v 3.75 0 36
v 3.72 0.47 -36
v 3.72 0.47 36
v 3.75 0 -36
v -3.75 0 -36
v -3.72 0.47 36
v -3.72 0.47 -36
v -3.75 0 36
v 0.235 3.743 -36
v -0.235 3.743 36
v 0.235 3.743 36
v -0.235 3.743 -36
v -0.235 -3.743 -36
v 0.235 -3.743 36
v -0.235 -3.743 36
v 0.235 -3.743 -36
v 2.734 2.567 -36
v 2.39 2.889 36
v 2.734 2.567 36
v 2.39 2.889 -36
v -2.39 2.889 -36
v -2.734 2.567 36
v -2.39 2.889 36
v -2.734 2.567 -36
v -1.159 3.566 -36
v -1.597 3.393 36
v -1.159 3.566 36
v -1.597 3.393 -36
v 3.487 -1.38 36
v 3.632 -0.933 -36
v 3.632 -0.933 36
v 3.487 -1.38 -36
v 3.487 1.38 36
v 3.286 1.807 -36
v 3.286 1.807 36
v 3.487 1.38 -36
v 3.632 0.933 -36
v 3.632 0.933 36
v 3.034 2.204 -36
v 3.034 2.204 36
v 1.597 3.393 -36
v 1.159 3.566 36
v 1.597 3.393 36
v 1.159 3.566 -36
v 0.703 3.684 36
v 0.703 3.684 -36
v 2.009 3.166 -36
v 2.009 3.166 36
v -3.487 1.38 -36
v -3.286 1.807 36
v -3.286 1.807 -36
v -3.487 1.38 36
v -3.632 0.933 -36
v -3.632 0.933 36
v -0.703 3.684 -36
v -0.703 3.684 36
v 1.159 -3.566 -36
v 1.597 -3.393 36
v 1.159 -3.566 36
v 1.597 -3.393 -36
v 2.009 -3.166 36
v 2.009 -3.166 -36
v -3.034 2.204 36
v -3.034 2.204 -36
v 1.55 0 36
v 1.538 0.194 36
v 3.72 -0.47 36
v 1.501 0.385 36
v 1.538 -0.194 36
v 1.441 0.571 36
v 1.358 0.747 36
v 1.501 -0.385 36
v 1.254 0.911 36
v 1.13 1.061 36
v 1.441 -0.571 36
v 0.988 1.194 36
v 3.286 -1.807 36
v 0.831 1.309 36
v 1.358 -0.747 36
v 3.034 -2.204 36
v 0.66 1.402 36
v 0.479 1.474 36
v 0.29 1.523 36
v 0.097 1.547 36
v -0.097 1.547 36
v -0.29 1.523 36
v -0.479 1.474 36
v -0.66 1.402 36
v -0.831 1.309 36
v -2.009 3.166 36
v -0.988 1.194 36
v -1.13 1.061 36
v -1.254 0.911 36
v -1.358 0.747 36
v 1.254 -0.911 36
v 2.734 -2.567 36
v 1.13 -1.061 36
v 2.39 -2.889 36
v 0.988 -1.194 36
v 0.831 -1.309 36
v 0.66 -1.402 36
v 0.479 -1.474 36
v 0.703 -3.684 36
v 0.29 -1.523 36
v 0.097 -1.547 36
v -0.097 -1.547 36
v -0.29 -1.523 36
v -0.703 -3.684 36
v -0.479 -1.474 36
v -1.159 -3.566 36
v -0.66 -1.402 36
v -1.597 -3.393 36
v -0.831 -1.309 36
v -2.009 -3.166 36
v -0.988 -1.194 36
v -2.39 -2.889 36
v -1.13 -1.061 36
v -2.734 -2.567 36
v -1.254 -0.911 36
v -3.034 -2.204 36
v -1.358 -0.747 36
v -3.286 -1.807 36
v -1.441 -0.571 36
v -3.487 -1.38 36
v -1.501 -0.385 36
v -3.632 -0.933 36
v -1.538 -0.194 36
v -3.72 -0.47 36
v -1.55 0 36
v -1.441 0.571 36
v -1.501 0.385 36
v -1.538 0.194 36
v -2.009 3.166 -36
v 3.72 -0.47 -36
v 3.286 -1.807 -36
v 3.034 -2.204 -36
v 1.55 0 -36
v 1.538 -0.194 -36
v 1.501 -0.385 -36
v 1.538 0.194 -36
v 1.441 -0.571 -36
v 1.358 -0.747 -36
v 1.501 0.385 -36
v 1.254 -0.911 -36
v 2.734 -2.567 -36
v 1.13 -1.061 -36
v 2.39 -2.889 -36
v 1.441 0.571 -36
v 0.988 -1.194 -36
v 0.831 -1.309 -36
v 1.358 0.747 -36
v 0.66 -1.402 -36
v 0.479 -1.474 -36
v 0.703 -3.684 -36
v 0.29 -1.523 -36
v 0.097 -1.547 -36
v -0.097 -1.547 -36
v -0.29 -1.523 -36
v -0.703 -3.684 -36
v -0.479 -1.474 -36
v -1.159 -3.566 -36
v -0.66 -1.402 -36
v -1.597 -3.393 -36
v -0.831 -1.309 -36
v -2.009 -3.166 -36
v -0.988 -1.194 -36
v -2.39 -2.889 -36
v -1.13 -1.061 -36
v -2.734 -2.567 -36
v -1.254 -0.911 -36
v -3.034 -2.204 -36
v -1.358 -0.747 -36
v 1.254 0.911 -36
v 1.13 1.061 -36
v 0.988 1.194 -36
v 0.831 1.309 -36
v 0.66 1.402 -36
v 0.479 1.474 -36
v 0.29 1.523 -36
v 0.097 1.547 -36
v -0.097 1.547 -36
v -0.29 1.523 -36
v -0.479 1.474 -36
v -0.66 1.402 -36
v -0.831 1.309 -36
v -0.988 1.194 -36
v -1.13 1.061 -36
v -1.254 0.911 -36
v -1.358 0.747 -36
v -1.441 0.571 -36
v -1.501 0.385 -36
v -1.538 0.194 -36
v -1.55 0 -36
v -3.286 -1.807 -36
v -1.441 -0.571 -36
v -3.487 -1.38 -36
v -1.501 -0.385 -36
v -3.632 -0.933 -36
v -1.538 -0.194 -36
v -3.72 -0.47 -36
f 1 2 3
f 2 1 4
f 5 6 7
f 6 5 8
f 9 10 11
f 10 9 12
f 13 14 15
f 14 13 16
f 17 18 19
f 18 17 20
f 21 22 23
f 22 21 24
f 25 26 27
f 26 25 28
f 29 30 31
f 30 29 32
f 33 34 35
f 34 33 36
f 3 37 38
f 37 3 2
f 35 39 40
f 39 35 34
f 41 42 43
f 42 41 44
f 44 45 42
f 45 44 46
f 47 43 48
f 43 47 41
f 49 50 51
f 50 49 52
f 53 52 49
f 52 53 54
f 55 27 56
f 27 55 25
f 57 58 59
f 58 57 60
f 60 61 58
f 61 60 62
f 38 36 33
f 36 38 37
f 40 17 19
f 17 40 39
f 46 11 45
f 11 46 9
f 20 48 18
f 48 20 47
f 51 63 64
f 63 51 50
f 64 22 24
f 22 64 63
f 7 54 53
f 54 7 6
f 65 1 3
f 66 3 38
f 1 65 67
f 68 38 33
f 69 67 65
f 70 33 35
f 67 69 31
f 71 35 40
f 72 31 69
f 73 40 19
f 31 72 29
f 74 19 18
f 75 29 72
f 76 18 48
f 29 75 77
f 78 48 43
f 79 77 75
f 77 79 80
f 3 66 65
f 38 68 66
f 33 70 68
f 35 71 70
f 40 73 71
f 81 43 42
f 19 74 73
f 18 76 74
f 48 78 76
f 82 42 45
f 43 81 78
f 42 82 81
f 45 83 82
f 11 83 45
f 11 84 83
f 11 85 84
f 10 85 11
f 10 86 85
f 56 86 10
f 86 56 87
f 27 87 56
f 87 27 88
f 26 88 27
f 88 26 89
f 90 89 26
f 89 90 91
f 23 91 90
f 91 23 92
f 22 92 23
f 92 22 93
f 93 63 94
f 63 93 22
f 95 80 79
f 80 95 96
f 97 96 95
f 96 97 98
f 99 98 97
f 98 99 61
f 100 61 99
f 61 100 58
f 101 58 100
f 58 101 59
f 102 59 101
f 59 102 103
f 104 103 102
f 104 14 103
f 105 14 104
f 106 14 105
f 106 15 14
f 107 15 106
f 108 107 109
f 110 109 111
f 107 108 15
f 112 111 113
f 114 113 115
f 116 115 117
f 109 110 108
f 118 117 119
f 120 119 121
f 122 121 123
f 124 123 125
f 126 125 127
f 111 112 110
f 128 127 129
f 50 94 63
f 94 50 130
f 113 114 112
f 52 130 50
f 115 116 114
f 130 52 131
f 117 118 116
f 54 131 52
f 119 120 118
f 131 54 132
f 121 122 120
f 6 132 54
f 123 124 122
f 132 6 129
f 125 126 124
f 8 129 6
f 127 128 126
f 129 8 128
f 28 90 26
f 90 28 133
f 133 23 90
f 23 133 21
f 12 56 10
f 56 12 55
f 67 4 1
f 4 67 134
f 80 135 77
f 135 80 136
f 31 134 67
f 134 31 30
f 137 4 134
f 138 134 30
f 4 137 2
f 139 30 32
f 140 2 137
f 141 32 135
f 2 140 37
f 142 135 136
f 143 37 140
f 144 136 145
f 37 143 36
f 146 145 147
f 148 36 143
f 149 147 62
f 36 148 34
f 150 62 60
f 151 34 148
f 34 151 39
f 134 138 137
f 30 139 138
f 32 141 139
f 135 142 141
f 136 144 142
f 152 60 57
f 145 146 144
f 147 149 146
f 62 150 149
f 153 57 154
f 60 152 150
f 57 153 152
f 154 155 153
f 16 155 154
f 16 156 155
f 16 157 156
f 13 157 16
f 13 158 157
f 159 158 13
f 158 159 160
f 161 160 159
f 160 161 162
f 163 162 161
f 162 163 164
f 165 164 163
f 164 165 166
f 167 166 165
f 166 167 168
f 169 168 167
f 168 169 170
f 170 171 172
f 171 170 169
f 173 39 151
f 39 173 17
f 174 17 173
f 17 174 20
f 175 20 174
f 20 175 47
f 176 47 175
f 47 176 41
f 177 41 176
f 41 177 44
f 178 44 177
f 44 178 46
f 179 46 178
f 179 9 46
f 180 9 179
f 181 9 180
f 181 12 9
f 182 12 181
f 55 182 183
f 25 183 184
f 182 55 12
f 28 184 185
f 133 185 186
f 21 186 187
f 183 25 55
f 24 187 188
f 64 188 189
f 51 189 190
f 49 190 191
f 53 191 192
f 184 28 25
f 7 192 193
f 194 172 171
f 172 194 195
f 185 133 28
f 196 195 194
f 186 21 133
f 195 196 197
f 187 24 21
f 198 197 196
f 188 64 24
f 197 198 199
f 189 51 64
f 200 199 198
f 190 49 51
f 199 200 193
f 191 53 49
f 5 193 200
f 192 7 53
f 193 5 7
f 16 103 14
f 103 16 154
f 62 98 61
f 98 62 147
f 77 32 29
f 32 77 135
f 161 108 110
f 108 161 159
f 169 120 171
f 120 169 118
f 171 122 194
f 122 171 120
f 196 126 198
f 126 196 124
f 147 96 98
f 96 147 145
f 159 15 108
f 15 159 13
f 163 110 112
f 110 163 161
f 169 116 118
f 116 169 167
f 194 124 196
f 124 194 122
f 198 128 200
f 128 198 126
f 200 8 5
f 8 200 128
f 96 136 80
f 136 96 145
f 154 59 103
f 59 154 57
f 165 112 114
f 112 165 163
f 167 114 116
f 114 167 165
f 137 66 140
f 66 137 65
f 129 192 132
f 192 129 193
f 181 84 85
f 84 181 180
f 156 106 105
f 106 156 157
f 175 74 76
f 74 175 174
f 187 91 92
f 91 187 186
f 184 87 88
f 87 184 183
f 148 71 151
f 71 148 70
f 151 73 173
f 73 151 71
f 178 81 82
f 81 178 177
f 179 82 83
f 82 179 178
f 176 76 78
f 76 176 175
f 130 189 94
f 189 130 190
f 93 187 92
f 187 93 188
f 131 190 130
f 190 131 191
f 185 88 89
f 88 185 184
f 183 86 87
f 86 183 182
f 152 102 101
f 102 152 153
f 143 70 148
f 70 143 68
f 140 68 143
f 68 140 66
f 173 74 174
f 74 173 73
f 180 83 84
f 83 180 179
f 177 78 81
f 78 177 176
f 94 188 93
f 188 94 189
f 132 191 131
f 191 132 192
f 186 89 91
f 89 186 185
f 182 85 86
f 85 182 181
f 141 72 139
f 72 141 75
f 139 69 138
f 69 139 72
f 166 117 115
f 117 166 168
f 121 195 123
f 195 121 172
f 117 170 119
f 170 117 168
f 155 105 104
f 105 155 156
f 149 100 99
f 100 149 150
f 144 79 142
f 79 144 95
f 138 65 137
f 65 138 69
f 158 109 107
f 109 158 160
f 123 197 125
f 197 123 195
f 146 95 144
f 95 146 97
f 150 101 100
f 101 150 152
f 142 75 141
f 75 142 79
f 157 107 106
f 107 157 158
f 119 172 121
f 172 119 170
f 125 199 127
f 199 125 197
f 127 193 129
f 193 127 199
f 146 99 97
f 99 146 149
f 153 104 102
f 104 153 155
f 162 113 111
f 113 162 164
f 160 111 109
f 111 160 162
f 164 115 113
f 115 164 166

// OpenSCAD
$fn = 50;


difference() {
	union() {
		translate(v = [0, 0, -36.0000000000]) {
			cylinder(h = 72, r = 3.7500000000);
		}
	}
	union() {
		translate(v = [0, 0, -100.0000000000]) {
			cylinder(h = 200, r = 1.5500000000);
		}
	}
}
